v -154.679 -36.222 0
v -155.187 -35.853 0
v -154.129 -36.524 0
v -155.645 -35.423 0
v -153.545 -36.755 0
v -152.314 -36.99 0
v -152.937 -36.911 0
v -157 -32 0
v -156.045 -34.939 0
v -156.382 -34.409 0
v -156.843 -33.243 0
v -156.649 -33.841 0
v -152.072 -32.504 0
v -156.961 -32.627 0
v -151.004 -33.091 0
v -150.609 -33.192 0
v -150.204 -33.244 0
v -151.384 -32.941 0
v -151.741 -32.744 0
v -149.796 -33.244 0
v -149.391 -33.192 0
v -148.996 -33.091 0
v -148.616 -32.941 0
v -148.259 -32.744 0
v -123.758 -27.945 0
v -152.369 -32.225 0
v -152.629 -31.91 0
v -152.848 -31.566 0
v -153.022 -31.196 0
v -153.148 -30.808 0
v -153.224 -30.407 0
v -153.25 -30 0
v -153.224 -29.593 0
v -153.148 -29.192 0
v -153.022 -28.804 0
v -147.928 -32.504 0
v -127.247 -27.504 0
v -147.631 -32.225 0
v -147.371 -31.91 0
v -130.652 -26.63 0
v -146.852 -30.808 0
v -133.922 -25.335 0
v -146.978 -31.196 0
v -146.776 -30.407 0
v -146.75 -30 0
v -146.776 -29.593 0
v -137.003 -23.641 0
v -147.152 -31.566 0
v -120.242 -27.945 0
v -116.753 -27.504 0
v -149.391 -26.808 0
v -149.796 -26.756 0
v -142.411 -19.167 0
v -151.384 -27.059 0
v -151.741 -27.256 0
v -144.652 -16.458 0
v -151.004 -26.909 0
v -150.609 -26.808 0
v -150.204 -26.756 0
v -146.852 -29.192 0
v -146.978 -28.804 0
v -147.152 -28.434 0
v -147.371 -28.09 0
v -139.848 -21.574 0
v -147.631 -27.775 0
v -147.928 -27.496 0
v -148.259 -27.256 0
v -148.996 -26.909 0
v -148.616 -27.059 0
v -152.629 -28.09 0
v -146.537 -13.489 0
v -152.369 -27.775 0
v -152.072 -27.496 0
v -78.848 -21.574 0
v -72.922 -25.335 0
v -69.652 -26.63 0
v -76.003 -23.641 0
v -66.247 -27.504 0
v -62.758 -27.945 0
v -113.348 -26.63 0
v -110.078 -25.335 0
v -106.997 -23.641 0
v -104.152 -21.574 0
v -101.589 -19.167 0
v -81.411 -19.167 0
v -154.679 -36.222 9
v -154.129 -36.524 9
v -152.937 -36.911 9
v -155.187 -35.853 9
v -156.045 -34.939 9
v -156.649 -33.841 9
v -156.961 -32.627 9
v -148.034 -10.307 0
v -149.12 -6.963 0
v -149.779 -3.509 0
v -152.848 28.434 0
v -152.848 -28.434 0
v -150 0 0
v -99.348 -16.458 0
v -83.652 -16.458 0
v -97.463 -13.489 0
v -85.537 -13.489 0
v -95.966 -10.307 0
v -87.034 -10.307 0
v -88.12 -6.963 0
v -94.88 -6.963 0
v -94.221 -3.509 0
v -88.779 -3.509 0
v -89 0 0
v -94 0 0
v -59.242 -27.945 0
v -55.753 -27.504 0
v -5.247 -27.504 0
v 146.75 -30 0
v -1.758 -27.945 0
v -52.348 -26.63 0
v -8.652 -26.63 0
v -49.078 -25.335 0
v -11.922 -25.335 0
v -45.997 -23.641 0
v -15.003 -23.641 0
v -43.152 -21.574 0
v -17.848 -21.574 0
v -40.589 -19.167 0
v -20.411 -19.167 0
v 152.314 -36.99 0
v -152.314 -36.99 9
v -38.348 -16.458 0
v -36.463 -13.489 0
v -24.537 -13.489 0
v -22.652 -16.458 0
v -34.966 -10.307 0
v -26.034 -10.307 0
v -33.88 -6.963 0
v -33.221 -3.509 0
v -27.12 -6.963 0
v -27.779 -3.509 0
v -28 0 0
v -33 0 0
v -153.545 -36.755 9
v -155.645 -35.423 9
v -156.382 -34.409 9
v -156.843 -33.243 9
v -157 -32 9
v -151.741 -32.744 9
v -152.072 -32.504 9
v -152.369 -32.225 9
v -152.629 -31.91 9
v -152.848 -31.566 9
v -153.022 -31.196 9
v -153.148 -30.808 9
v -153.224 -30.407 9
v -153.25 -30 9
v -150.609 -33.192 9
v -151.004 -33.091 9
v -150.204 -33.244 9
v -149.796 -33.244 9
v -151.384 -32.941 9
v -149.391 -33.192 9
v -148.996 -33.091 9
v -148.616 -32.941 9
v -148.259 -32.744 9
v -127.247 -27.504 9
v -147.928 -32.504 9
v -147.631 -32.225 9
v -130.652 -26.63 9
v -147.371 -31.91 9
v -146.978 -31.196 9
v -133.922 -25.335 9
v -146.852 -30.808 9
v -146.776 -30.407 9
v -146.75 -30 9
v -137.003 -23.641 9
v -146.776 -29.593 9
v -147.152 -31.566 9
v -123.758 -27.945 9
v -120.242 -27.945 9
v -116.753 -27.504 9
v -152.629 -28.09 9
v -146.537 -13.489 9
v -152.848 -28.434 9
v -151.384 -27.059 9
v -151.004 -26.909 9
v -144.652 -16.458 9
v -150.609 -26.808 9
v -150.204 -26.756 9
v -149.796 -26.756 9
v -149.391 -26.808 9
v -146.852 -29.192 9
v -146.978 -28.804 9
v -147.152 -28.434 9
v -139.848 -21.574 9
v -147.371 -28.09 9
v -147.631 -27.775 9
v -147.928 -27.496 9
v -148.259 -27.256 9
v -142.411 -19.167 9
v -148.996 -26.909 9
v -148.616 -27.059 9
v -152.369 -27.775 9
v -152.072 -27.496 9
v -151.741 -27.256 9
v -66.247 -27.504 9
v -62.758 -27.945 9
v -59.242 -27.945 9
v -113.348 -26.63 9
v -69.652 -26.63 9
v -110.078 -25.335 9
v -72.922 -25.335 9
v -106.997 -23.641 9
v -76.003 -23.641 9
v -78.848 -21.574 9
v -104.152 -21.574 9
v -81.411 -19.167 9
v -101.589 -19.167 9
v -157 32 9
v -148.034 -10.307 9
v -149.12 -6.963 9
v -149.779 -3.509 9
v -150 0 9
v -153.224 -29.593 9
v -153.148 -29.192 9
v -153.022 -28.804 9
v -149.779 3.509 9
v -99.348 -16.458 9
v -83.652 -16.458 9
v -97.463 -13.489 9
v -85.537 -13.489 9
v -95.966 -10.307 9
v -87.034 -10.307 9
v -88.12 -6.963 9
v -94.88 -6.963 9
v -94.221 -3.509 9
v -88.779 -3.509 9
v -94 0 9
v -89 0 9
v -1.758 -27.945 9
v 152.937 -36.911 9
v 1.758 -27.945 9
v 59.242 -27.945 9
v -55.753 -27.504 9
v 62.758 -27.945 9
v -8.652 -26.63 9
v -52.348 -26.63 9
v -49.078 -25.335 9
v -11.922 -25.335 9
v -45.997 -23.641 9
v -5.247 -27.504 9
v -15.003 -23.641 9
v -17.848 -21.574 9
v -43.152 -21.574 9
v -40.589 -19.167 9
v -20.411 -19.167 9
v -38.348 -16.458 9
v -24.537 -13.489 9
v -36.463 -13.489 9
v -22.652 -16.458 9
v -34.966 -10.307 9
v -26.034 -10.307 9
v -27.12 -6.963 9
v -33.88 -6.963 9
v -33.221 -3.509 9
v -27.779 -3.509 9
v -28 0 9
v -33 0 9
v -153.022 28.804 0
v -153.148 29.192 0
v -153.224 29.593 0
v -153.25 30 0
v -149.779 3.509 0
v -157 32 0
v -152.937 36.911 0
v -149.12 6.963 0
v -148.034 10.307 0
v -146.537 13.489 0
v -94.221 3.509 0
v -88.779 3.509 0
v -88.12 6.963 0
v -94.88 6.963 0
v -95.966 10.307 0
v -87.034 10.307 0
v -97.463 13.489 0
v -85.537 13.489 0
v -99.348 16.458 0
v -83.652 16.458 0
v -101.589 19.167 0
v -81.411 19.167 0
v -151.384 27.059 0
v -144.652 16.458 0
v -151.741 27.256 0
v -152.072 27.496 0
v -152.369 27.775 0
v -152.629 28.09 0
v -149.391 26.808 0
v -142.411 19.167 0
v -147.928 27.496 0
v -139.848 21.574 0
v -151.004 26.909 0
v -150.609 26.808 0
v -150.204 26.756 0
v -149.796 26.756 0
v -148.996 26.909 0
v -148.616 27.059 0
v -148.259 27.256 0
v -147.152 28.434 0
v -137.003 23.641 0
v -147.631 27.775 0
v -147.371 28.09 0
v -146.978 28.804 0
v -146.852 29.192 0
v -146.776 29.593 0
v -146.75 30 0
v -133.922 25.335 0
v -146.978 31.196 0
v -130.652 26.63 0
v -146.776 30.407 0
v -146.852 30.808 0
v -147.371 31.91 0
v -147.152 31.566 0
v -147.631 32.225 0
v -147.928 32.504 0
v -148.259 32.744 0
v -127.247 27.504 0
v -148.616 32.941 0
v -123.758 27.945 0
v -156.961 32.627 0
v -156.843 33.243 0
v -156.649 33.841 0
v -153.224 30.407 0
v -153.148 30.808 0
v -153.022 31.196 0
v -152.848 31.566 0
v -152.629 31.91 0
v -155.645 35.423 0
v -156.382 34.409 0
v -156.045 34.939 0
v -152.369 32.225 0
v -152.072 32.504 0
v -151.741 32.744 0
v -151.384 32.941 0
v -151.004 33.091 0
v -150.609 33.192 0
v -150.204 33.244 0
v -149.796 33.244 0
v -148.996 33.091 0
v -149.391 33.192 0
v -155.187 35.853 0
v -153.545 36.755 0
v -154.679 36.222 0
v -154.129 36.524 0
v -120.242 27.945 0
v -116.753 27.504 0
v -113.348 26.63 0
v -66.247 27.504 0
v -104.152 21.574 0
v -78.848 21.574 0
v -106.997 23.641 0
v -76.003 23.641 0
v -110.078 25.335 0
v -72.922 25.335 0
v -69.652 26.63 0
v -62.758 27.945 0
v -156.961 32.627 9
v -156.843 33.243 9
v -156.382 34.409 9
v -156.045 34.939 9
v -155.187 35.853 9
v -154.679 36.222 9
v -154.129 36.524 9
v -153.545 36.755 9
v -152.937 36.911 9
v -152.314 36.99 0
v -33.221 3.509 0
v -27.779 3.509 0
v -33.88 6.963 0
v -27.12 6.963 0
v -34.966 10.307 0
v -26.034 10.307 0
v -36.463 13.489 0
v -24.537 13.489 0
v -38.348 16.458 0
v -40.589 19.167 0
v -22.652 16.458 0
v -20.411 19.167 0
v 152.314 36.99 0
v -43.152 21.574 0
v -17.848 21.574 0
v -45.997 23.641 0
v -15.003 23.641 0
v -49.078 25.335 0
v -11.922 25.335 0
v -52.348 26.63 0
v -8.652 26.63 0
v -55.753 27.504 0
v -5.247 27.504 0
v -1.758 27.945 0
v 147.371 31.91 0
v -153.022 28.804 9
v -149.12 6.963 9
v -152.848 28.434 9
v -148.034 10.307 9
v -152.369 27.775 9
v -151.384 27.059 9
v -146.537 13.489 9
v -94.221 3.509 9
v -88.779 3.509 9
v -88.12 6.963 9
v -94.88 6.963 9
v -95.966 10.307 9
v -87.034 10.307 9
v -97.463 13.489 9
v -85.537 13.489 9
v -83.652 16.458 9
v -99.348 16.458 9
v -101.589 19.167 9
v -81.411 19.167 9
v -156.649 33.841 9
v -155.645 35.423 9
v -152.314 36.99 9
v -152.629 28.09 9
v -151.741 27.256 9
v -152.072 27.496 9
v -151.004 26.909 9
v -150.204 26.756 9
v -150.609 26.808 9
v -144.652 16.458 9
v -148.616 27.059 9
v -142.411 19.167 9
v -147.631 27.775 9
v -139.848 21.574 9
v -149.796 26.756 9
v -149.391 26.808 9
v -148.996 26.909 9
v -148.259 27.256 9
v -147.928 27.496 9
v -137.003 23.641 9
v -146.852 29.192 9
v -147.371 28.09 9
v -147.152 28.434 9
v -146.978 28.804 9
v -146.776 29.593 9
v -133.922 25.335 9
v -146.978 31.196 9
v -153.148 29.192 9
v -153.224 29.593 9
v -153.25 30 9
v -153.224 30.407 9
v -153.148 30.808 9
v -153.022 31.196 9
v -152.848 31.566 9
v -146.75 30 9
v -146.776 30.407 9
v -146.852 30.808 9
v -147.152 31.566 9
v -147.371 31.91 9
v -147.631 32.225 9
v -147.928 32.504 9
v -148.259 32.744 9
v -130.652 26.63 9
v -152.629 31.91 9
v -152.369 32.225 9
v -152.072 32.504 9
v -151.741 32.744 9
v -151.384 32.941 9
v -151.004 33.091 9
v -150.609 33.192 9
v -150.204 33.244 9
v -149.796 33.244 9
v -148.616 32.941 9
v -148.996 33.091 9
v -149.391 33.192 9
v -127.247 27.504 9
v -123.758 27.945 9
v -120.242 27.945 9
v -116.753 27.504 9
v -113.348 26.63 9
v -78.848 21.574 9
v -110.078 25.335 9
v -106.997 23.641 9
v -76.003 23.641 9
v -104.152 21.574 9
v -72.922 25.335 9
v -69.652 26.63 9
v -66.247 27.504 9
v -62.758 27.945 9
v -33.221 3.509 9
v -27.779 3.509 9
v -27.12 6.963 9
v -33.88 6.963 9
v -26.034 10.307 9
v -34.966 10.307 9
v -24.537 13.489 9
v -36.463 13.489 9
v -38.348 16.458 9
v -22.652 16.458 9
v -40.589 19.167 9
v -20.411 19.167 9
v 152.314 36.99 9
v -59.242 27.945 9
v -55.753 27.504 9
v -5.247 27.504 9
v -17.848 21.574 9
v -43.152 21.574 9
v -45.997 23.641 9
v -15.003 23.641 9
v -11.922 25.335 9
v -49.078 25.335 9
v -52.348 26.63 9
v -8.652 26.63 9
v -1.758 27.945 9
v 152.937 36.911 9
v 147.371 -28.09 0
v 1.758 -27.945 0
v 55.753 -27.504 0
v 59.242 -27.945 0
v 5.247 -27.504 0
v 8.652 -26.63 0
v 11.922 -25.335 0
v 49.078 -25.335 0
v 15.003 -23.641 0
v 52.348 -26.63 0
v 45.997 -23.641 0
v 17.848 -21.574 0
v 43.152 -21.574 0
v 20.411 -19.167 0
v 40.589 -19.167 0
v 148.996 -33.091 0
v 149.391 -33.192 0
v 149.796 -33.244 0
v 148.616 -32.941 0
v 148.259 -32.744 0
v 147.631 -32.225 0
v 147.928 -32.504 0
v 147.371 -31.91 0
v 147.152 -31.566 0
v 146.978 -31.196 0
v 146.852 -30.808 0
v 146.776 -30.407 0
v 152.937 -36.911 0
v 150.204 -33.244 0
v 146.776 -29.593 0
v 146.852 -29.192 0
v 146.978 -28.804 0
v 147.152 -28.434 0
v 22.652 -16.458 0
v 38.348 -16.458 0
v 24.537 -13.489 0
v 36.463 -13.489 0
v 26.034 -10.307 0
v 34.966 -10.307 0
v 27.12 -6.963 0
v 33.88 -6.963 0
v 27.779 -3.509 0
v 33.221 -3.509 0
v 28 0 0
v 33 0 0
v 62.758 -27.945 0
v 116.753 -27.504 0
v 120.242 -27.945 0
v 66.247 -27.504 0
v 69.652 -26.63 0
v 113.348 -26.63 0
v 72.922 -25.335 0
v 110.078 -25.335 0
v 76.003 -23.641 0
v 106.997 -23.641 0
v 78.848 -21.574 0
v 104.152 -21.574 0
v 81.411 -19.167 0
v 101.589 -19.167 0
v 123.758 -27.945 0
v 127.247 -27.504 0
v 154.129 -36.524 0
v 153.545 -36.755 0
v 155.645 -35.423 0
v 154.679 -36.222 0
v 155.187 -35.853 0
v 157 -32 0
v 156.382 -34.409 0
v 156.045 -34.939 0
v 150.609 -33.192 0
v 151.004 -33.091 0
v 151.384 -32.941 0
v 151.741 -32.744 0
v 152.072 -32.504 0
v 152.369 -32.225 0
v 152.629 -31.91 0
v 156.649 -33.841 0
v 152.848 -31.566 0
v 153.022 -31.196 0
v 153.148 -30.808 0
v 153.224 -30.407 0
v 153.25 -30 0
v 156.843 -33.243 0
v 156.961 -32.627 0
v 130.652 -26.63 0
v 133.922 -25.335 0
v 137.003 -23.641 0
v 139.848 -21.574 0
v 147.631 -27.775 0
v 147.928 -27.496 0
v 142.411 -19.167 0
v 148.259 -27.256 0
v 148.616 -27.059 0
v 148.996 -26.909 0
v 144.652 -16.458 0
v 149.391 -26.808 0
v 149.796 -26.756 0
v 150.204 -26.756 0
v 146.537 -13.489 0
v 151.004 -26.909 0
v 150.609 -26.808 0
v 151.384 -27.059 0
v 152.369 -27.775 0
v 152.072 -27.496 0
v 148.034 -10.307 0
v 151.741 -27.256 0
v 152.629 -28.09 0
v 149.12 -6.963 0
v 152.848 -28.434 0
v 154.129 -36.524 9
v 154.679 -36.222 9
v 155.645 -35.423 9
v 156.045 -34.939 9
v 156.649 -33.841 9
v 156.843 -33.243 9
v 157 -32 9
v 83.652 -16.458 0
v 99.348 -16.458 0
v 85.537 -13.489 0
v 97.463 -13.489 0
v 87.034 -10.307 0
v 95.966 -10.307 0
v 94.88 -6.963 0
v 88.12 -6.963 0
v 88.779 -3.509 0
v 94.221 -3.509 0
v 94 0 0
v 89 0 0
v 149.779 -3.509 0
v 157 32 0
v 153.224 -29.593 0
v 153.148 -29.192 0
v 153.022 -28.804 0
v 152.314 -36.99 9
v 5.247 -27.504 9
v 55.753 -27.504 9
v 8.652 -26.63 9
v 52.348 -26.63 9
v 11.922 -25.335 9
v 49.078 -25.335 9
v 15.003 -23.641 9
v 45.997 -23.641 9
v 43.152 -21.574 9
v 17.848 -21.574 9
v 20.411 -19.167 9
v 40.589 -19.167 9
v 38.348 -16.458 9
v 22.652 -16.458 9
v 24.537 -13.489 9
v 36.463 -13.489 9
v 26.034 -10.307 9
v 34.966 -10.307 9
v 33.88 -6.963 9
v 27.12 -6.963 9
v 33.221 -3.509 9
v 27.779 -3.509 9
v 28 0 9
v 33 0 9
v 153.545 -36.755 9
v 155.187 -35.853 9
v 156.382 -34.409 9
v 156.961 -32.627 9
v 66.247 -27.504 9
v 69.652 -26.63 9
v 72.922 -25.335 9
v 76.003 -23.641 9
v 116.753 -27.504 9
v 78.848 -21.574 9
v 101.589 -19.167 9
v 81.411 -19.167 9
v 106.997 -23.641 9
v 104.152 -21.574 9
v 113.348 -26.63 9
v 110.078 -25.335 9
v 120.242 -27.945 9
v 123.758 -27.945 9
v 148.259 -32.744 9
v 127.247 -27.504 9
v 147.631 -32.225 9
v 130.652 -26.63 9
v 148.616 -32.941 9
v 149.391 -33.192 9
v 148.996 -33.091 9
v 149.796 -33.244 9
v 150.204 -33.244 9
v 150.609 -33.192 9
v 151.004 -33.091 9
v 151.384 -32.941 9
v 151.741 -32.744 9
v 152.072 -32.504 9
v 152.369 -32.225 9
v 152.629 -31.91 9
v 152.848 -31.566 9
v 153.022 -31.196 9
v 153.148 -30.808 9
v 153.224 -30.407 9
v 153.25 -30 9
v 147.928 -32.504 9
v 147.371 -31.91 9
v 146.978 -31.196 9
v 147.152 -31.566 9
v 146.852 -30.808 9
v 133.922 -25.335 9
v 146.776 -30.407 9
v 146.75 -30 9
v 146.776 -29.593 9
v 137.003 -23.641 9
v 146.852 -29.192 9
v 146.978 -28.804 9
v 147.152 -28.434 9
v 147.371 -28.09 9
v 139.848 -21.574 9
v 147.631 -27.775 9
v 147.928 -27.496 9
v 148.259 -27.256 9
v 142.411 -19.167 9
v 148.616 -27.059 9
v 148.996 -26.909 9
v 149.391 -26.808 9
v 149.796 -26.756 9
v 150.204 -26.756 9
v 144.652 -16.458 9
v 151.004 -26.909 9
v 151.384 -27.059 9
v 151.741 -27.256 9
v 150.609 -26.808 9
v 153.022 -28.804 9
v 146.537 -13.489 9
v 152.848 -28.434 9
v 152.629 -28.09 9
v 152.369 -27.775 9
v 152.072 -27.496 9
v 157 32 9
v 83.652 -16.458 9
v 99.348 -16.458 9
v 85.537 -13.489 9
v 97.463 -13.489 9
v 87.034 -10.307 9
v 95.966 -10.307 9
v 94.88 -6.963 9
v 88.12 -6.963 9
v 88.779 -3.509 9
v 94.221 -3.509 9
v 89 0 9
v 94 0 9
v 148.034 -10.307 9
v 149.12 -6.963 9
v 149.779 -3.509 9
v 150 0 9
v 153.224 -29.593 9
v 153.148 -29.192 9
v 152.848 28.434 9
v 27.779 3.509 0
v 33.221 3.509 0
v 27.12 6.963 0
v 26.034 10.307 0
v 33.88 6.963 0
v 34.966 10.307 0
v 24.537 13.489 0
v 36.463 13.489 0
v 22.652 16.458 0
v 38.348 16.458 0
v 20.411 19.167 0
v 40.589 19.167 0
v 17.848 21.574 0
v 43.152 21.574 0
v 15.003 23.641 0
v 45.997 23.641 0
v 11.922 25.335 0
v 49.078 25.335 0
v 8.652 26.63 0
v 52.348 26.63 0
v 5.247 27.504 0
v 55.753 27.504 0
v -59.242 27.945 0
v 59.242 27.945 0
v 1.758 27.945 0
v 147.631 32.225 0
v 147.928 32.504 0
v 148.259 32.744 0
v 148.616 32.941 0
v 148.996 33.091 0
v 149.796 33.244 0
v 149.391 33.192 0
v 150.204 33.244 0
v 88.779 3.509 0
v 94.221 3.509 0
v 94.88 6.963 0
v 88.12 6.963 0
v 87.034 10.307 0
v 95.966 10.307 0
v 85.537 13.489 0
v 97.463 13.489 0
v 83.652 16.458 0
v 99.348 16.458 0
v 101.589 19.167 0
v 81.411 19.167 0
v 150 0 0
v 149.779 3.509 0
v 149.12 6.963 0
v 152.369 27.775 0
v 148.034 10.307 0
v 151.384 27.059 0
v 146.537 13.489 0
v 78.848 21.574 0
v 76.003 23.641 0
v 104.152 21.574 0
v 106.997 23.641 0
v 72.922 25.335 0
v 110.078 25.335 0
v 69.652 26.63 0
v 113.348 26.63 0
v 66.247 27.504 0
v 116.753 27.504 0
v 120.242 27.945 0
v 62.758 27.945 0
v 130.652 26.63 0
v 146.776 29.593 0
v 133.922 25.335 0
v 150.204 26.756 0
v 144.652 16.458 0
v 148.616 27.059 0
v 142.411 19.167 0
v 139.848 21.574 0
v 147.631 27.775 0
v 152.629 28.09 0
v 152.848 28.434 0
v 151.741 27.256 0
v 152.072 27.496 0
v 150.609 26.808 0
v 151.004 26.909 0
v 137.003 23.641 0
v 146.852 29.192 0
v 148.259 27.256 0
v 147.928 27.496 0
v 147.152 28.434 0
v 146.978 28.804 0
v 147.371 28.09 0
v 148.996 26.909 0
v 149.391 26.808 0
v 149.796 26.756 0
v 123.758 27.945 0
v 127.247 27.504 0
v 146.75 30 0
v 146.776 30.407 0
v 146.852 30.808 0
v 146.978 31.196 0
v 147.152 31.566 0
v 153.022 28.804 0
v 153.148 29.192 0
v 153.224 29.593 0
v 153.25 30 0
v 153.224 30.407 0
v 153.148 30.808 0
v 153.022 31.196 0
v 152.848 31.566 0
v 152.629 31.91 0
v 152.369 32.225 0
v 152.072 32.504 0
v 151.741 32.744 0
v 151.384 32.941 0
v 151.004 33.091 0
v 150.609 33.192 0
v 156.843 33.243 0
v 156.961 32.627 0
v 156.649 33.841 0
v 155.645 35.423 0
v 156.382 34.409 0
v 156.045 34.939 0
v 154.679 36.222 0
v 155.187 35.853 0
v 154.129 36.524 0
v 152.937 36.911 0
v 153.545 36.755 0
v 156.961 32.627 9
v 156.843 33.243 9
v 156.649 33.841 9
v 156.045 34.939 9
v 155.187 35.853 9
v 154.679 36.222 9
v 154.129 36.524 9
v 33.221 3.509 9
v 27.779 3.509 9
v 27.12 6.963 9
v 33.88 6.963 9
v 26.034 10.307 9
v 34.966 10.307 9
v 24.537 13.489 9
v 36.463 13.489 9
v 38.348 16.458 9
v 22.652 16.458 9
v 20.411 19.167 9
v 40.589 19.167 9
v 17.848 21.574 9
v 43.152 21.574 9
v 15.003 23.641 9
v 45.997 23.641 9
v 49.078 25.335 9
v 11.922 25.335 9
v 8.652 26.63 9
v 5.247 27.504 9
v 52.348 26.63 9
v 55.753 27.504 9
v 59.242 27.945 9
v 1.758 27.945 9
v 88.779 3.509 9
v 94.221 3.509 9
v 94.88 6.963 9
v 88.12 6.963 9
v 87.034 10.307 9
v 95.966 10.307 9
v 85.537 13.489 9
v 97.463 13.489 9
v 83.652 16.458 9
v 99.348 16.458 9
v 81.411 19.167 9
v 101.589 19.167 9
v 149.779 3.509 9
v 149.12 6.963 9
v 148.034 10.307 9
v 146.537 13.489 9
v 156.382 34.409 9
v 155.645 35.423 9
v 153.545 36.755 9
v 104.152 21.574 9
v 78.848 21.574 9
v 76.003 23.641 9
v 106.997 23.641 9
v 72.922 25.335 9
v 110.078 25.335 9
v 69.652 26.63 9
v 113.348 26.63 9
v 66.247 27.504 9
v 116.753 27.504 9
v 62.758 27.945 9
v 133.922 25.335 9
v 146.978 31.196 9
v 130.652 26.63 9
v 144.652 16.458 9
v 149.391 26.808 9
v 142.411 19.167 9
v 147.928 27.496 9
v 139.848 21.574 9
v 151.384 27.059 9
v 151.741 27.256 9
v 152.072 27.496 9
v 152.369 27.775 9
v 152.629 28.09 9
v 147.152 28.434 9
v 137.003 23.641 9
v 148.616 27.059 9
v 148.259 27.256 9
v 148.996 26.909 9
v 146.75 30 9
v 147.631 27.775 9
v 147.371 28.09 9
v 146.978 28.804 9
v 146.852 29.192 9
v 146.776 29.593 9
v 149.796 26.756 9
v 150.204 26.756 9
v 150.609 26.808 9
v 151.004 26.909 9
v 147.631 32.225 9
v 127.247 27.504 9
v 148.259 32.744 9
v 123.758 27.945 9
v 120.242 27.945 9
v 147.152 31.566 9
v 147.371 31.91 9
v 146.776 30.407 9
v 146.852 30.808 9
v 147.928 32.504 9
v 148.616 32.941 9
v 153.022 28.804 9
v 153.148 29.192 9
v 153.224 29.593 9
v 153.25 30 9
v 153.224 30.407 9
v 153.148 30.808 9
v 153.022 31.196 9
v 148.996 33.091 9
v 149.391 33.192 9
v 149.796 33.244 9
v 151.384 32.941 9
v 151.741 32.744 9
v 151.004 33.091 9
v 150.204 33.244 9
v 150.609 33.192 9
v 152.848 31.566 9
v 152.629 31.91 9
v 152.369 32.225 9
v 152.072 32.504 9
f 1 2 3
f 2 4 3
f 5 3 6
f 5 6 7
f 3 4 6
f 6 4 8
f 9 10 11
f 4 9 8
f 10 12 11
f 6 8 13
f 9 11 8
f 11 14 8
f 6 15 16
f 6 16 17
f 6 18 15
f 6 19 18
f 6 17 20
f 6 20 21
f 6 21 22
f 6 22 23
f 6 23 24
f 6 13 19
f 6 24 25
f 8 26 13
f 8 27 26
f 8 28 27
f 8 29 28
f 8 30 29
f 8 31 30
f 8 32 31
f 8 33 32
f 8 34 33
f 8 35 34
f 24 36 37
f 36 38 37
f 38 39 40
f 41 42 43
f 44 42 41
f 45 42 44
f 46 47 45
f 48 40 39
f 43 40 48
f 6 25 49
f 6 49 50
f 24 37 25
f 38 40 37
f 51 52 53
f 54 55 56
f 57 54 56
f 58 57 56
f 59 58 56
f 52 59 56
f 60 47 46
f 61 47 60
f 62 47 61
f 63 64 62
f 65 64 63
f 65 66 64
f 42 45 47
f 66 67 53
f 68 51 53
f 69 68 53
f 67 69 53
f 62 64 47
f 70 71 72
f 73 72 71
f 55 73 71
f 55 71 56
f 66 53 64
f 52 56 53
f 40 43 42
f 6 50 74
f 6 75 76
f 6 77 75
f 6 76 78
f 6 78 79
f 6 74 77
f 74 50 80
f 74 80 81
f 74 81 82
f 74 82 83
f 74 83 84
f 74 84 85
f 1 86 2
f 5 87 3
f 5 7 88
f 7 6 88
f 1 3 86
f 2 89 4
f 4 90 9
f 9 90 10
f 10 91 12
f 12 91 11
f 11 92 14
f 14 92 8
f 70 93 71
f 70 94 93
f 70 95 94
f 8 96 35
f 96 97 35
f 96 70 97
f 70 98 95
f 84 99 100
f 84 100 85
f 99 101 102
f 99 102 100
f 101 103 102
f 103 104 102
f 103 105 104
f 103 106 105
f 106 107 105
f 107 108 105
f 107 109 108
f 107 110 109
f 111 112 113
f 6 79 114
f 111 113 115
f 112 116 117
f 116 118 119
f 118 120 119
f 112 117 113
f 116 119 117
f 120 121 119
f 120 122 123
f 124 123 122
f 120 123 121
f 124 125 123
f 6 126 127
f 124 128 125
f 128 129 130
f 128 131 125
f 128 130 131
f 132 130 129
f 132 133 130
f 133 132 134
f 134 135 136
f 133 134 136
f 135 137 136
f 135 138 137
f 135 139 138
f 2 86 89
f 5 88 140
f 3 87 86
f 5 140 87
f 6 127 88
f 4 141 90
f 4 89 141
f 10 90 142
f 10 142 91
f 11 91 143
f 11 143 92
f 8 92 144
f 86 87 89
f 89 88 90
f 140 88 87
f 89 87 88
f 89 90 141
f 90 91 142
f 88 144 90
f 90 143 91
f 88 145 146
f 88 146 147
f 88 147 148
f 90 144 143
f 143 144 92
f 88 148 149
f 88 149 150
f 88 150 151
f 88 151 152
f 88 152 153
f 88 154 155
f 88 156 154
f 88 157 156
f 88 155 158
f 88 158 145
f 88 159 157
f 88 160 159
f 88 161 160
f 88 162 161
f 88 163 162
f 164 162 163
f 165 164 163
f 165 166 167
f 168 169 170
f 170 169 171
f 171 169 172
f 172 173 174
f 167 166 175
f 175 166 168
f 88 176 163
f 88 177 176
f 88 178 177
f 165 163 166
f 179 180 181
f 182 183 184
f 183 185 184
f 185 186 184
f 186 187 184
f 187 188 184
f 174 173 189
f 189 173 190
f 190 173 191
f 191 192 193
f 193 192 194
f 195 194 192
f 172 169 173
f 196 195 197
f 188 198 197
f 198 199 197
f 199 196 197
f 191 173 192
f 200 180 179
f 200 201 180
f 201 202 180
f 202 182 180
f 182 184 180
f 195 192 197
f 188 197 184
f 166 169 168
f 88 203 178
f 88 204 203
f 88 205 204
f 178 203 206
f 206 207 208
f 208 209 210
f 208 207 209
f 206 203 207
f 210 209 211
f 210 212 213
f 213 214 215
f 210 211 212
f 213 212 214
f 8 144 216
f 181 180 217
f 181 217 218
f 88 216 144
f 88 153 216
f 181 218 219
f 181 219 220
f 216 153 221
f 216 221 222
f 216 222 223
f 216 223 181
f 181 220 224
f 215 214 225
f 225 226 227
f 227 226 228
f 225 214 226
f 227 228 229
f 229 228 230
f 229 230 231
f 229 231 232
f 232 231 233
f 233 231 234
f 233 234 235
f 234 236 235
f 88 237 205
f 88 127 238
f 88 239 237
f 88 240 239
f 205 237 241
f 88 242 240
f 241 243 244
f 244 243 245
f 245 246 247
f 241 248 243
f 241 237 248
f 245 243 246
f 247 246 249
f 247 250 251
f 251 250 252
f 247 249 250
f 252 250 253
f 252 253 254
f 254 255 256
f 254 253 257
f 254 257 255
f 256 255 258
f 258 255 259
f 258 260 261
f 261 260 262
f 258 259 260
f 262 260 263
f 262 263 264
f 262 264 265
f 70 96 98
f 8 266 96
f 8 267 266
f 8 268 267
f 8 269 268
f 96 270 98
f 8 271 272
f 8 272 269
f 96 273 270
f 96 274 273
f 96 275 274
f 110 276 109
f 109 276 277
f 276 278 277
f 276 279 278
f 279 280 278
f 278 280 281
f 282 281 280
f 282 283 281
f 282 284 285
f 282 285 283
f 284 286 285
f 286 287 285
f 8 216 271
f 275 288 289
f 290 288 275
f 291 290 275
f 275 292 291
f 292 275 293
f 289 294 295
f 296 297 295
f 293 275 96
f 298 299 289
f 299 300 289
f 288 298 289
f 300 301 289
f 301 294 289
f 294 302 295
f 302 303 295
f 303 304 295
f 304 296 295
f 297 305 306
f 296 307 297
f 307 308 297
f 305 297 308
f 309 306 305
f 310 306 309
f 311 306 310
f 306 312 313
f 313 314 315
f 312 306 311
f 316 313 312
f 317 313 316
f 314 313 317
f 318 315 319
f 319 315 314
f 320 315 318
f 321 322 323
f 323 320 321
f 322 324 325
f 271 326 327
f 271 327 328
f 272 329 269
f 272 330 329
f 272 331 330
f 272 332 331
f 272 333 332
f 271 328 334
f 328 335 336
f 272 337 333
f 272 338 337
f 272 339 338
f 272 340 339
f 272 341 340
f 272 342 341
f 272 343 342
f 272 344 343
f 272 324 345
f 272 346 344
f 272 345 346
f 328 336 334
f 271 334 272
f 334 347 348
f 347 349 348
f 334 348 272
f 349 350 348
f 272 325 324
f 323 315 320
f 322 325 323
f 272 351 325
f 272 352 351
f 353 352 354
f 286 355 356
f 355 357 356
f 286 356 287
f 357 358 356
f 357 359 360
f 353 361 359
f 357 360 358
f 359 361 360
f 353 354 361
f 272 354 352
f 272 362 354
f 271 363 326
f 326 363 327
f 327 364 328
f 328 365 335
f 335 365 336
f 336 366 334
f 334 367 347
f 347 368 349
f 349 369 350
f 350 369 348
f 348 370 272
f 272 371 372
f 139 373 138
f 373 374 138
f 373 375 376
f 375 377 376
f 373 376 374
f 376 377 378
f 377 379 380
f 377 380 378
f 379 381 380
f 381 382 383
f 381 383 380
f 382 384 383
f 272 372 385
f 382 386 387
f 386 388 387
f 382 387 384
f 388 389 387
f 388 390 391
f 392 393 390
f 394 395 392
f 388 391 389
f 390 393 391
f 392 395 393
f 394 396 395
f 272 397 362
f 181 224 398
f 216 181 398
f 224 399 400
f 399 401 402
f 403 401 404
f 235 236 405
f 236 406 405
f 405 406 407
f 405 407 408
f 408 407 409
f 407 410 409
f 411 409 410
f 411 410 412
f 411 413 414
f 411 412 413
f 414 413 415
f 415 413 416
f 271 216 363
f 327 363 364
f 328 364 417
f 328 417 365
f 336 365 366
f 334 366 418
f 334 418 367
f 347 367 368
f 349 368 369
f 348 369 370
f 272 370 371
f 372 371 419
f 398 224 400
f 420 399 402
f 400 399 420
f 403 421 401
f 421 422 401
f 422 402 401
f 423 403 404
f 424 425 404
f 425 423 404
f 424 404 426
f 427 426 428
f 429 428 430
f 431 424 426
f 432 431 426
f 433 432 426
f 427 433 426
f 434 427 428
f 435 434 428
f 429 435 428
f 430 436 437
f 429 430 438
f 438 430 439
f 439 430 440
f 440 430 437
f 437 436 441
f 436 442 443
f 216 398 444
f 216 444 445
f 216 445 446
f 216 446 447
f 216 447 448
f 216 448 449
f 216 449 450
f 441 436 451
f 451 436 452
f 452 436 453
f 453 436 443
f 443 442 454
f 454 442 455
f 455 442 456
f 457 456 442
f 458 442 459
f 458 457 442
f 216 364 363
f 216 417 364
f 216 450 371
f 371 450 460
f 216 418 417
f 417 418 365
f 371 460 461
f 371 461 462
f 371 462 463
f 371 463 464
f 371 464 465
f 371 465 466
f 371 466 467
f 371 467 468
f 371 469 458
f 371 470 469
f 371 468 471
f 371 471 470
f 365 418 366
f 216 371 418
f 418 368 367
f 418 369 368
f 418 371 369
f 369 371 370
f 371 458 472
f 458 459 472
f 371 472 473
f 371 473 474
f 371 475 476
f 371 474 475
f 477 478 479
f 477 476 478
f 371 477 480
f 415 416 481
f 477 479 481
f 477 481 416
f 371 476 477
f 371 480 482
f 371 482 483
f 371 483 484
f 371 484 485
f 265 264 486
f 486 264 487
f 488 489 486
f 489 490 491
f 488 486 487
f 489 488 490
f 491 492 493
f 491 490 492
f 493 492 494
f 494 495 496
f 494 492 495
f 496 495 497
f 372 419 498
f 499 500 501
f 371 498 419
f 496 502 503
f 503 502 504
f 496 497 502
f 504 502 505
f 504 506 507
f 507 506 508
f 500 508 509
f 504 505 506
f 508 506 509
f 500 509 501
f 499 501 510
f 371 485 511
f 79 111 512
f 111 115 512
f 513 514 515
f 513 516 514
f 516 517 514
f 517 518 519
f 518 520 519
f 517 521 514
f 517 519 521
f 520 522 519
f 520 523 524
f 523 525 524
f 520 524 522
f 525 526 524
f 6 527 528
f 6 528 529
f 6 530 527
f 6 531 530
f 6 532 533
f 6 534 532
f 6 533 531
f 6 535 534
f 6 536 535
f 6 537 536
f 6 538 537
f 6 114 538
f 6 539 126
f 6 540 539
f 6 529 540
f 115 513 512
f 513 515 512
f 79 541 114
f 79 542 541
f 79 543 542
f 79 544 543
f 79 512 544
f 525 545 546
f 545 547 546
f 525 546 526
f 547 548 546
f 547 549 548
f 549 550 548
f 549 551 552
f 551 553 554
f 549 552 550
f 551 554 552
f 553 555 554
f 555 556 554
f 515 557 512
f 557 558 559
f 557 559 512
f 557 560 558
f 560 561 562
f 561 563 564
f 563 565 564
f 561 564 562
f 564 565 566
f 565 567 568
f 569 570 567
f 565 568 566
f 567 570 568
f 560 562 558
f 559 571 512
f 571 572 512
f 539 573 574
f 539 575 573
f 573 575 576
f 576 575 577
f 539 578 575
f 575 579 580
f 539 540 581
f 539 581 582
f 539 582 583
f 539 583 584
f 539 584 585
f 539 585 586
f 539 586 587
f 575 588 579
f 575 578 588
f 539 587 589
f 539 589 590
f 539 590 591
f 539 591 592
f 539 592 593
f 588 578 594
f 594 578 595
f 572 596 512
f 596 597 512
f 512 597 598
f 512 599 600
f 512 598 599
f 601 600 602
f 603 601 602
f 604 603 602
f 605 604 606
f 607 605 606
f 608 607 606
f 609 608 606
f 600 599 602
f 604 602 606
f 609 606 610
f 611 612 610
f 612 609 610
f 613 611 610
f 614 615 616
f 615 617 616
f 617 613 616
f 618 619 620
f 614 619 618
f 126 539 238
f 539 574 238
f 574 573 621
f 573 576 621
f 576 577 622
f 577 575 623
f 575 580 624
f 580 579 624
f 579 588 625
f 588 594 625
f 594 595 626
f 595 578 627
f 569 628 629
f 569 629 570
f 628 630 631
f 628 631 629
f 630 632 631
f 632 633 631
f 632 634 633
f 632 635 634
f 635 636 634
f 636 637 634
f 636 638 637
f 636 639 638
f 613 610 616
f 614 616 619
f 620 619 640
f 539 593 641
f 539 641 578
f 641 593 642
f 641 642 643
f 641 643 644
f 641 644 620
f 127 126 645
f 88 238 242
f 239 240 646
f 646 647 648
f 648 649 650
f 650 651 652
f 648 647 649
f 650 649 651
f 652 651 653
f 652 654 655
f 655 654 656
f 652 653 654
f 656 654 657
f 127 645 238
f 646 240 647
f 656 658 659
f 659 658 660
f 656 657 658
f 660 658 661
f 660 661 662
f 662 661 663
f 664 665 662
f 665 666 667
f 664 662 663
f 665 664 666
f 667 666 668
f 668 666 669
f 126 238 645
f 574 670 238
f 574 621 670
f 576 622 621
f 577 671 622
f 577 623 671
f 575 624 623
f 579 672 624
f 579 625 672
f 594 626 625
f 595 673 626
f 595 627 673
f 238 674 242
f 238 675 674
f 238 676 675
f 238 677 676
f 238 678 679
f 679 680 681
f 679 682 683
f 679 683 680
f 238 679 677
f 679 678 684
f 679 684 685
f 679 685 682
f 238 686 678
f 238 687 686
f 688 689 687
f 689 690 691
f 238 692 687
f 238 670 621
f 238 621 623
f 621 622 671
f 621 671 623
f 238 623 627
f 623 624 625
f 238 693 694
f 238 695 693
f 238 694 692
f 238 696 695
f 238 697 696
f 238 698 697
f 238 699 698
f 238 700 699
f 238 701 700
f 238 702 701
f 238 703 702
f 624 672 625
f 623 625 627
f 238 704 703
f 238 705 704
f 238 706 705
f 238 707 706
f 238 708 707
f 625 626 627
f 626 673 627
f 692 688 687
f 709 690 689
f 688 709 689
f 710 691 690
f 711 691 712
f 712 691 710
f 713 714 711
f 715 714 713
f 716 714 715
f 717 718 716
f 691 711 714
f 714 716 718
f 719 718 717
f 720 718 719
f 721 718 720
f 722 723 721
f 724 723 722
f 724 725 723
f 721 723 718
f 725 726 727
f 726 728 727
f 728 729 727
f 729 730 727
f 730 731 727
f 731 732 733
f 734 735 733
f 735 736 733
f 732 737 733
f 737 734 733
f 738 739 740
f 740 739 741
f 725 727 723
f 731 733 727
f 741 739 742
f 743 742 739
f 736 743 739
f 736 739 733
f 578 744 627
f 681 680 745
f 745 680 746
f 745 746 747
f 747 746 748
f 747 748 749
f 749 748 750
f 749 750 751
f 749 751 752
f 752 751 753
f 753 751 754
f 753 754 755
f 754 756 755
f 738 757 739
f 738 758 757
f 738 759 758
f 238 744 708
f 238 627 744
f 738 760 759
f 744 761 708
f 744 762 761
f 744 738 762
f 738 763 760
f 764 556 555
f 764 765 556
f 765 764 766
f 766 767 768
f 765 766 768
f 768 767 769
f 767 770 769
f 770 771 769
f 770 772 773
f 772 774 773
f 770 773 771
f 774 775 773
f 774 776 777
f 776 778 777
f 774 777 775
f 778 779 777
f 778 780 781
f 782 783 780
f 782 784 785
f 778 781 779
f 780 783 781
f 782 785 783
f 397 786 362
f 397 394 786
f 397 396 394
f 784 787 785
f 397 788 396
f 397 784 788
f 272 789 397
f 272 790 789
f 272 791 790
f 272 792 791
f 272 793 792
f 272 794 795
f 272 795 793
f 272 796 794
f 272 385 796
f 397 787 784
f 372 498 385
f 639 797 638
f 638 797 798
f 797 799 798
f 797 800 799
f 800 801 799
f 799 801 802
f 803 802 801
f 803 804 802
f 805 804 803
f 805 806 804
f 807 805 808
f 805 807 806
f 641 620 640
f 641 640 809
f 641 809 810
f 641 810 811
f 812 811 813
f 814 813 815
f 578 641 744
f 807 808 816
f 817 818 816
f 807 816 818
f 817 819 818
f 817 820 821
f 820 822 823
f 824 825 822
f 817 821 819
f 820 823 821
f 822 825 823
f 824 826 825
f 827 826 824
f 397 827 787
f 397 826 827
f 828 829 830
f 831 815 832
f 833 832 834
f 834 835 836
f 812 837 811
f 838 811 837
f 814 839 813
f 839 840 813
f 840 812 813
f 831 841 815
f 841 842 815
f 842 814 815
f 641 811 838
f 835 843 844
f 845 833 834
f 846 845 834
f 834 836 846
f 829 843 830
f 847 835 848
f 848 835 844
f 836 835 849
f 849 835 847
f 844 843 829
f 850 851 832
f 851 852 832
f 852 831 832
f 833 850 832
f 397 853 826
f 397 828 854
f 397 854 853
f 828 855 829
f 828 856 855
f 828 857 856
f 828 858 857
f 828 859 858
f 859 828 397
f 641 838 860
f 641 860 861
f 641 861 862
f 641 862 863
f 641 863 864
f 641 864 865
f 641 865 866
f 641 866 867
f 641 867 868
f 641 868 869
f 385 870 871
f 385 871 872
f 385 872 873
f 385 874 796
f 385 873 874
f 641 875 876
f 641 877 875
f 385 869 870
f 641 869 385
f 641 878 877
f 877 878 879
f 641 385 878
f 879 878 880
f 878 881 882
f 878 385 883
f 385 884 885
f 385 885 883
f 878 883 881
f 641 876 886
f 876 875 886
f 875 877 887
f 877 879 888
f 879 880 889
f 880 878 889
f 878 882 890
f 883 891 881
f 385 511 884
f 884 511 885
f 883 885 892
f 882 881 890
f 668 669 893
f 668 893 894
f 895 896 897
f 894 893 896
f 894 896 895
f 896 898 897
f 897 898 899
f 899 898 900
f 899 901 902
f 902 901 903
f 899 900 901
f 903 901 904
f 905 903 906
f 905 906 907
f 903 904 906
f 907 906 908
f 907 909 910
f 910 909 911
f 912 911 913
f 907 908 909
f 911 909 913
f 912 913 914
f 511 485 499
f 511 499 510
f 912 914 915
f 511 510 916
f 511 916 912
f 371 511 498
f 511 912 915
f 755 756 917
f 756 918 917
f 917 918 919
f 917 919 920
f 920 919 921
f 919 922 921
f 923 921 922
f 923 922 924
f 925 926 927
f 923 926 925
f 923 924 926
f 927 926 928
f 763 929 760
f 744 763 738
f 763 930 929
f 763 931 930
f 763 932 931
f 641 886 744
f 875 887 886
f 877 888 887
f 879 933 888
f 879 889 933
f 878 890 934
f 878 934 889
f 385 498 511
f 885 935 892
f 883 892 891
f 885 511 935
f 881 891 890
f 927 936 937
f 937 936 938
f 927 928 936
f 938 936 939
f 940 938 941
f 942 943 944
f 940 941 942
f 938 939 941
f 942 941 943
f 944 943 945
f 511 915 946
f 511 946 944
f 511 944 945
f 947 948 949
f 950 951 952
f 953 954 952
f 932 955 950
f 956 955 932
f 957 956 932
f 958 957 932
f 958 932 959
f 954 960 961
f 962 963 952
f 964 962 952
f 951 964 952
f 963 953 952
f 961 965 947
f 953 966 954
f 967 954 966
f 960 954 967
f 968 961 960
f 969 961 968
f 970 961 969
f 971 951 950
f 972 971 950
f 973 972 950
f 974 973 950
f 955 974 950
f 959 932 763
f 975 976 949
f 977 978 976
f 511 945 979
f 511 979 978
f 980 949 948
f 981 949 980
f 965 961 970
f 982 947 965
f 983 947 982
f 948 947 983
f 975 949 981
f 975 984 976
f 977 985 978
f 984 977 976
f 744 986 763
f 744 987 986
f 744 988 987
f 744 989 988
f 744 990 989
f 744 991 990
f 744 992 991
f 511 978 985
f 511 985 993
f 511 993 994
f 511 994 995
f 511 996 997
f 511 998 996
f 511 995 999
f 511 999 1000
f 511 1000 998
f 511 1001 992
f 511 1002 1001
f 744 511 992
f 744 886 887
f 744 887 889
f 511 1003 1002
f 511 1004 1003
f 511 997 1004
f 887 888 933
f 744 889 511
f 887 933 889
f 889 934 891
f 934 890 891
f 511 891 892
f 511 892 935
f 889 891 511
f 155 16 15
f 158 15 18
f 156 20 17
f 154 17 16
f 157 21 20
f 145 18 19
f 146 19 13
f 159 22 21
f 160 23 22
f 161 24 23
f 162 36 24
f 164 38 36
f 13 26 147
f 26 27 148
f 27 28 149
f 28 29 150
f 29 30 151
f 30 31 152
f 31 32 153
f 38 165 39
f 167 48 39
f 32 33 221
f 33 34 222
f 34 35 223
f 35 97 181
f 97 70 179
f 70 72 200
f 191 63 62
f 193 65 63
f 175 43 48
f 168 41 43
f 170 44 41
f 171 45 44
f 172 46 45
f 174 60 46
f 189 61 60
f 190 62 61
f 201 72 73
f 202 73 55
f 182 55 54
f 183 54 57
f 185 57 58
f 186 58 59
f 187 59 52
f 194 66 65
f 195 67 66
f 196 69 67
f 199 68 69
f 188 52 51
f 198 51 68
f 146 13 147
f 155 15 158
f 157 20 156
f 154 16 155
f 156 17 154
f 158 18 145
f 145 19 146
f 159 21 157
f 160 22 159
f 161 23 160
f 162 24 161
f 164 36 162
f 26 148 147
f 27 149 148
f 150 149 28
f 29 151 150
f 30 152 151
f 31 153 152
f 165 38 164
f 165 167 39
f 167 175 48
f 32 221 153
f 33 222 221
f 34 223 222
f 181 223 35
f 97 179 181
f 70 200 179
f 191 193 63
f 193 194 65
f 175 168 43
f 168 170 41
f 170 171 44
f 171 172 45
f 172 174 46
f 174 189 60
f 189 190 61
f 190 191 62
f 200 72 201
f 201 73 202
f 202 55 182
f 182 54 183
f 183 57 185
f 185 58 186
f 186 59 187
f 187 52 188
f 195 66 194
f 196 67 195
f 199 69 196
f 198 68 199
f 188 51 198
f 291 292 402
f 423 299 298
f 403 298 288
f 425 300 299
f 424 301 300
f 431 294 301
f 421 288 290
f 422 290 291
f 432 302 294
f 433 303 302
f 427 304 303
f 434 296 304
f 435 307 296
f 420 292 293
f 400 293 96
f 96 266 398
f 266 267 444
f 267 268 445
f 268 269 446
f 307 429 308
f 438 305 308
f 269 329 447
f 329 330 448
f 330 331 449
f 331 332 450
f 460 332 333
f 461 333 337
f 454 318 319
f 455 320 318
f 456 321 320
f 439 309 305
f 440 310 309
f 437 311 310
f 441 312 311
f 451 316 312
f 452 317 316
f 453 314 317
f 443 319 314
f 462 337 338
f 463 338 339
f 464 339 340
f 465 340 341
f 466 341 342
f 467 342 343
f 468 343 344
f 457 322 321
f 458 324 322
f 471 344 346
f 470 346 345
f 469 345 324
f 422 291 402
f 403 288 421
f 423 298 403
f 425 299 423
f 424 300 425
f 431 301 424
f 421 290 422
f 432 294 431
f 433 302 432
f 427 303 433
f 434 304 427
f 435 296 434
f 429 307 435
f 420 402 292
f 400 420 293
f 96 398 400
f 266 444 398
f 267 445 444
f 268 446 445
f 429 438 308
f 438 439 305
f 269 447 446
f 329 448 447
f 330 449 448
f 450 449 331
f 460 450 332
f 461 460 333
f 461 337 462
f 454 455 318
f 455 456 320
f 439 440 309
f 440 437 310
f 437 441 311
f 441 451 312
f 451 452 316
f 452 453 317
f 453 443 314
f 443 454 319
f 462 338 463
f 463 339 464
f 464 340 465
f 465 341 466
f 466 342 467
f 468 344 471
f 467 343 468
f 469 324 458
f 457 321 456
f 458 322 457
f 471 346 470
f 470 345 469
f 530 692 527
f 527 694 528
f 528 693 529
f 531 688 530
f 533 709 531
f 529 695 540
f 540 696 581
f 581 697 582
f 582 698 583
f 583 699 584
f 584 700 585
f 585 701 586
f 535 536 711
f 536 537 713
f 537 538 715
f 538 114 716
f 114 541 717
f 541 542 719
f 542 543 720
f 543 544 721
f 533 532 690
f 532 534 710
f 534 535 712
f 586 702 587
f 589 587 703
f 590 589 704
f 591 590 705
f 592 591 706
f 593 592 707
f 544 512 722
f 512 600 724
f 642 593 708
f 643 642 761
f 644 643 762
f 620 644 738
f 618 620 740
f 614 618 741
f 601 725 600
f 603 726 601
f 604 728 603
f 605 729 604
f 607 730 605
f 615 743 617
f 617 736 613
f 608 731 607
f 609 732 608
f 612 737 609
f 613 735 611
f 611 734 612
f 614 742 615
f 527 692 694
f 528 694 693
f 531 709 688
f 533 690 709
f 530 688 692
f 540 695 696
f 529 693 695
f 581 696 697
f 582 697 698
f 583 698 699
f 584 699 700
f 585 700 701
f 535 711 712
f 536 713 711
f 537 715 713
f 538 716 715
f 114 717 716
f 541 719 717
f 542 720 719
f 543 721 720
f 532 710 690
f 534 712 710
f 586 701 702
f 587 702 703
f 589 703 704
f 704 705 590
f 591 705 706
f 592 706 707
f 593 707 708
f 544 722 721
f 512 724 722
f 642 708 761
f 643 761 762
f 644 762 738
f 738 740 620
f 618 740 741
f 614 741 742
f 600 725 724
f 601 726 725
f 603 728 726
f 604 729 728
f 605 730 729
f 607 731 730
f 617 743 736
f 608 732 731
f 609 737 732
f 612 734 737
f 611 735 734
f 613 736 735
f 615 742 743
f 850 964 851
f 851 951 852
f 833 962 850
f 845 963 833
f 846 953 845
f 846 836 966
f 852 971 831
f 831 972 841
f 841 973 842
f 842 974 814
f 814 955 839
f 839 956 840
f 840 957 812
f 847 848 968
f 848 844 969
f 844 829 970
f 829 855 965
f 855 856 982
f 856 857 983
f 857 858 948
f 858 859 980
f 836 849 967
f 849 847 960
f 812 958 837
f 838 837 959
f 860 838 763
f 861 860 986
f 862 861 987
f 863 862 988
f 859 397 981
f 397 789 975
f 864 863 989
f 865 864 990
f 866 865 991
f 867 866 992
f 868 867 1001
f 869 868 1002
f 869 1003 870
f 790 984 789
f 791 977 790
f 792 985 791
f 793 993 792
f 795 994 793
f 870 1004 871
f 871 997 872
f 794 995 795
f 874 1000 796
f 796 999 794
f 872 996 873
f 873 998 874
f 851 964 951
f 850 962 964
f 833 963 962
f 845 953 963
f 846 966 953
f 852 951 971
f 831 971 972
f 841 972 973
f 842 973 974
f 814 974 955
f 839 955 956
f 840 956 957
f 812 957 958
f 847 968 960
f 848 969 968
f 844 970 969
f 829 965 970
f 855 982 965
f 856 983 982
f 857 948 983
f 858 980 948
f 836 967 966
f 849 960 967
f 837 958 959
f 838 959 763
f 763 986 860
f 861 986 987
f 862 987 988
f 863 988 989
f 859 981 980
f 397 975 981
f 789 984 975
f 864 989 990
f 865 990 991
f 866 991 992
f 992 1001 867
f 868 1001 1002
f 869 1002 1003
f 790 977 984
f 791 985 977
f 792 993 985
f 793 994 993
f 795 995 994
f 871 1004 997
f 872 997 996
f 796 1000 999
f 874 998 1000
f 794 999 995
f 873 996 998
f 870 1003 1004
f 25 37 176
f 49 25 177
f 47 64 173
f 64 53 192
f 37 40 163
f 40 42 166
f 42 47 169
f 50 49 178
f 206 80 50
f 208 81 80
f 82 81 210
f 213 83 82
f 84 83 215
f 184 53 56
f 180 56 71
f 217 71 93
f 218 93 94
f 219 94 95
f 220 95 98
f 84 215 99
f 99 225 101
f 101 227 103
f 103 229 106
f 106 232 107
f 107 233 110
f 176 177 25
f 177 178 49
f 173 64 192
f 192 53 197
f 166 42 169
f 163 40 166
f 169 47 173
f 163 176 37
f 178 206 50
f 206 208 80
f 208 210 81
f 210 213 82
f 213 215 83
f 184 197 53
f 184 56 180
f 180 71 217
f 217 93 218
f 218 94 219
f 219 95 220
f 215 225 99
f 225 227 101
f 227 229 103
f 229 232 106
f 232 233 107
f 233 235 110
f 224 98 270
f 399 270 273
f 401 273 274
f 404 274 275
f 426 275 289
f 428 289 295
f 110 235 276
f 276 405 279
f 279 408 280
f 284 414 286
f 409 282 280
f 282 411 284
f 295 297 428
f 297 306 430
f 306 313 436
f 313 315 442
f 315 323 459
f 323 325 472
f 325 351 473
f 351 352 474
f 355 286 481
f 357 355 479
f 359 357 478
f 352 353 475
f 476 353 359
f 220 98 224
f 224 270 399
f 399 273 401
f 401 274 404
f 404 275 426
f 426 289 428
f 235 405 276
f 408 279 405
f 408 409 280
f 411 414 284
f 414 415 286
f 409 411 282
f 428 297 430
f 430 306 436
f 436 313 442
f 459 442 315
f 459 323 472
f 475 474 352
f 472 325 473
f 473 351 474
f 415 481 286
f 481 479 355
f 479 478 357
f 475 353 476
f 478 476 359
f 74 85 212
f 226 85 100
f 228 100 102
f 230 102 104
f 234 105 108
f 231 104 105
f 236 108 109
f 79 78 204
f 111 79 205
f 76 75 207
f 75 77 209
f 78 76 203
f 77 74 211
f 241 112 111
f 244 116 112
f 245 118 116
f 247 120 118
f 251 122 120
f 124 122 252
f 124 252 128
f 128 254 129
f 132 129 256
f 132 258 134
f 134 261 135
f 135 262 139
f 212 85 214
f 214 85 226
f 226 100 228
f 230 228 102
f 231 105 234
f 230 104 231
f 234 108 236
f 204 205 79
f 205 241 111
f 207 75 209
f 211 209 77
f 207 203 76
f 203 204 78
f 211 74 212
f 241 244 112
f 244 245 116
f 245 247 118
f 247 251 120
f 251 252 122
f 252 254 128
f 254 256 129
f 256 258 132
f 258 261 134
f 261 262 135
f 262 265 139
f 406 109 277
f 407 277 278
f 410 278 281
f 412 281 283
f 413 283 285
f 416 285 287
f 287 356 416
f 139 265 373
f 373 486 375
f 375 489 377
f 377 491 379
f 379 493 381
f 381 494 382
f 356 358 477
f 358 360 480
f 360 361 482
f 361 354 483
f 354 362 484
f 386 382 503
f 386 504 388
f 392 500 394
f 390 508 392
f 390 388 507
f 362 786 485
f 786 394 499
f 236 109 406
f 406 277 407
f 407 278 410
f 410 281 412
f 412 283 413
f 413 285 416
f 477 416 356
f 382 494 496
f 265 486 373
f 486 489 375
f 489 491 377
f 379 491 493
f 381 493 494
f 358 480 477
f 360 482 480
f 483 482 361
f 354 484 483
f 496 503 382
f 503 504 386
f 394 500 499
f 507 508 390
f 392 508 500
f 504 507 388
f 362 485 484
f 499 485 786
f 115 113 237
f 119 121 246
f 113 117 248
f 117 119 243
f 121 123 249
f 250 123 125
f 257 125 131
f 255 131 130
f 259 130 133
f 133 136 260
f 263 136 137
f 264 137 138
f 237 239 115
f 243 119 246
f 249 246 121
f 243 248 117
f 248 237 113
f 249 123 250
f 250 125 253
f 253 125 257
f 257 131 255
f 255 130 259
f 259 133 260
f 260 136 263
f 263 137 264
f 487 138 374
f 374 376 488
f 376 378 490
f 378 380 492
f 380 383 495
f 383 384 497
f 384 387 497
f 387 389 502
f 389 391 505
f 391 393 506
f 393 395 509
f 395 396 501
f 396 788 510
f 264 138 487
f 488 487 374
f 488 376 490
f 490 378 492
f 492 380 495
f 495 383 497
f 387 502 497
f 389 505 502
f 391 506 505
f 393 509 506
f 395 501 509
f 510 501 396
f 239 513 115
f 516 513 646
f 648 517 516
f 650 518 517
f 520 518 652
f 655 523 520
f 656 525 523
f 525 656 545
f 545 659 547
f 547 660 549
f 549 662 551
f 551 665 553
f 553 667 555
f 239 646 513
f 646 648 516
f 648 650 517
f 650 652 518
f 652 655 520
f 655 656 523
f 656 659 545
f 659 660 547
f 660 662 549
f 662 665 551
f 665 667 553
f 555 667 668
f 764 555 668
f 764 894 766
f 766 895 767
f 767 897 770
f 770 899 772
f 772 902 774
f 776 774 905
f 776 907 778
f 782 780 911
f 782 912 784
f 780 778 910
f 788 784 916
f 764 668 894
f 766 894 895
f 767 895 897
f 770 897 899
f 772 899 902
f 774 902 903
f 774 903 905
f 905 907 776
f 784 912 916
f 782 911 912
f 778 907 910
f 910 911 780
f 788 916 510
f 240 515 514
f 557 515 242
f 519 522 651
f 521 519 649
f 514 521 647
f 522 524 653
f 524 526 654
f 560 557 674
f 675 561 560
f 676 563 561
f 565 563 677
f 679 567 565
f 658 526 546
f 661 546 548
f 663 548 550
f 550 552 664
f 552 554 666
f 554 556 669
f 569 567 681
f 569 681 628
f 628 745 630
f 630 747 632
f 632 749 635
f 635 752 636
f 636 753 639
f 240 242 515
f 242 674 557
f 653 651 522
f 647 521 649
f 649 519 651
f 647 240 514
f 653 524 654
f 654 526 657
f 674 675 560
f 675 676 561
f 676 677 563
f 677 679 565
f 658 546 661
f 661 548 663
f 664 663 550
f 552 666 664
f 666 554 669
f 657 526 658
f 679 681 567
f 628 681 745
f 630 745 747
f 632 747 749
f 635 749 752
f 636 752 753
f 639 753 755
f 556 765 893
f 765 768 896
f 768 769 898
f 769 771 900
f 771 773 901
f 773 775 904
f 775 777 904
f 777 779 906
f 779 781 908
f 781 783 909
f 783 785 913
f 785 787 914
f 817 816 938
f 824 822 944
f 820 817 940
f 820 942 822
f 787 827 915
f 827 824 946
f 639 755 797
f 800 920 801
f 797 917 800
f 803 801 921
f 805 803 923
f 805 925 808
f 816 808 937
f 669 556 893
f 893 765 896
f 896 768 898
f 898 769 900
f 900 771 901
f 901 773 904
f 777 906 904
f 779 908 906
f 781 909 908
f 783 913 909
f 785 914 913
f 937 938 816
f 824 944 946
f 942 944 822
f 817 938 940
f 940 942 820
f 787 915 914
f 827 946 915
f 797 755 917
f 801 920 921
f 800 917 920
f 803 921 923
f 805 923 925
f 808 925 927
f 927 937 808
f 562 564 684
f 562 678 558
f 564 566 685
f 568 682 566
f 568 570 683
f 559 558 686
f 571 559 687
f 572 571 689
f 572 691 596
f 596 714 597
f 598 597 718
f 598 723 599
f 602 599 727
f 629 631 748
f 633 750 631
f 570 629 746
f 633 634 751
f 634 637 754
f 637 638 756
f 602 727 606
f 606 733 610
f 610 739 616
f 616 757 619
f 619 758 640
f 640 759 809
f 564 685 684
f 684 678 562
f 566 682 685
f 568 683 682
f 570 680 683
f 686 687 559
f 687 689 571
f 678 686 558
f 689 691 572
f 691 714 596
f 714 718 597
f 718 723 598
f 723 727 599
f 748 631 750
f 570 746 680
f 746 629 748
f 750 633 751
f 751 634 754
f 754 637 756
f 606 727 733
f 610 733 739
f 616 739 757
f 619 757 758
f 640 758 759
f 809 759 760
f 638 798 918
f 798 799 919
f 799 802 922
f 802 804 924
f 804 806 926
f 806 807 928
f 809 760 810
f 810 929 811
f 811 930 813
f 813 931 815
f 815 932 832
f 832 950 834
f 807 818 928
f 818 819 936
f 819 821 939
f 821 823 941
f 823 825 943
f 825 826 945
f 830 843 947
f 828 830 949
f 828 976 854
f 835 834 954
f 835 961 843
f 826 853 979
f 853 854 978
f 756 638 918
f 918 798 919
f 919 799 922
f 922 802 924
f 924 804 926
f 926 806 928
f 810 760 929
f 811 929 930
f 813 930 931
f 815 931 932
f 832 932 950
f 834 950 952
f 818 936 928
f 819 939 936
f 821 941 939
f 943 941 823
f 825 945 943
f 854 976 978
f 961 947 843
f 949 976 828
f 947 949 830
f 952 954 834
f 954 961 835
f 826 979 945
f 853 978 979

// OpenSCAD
$fn = 50;

difference() {
	union() {
		hull() {
			translate(v = [-152.0, 32.0, 0]) {
				cylinder(h = 9, r = 5);
			}
			translate(v = [152.0, 32.0, 0]) {
				cylinder(h = 9, r = 5);
			}
			translate(v = [-152.0, -32.0, 0]) {
				cylinder(h = 9, r = 5);
			}
			translate(v = [152.0, -32.0, 0]) {
				cylinder(h = 9, r = 5);
			}
		}
	}
	union() {
		translate(v = [-150.0, -30.0, -100.0]) {
			cylinder(h = 200, r = 3.25);
		}
		translate(v = [-150.0, 30.0, -100.0]) {
			cylinder(h = 200, r = 3.25);
		}
		translate(v = [150.0, -30.0, -100.0]) {
			cylinder(h = 200, r = 3.25);
		}
		translate(v = [150.0, 30.0, -100.0]) {
			cylinder(h = 200, r = 3.25);
		}
		translate(v = [-150.0, -30.0, -100.0]) {
			cylinder(h = 200, r = 1.8);
		}
		translate(v = [-150.0, 30.0, -100.0]) {
			cylinder(h = 200, r = 1.8);
		}
		translate(v = [150.0, -30.0, -100.0]) {
			cylinder(h = 200, r = 1.8);
		}
		translate(v = [150.0, 30.0, -100.0]) {
			cylinder(h = 200, r = 1.8);
		}
		translate(v = [-122.0, 0, 0.0]) {
			cylinder(h = 9, r = 28.0);
		}
		translate(v = [-61.0, 0, 0.0]) {
			cylinder(h = 9, r = 28.0);
		}
		cylinder(h = 9, r = 28.0);
		translate(v = [61.0, 0, 0.0]) {
			cylinder(h = 9, r = 28.0);
		}
		translate(v = [122.0, 0, 0.0]) {
			cylinder(h = 9, r = 28.0);
		}
	}
}
